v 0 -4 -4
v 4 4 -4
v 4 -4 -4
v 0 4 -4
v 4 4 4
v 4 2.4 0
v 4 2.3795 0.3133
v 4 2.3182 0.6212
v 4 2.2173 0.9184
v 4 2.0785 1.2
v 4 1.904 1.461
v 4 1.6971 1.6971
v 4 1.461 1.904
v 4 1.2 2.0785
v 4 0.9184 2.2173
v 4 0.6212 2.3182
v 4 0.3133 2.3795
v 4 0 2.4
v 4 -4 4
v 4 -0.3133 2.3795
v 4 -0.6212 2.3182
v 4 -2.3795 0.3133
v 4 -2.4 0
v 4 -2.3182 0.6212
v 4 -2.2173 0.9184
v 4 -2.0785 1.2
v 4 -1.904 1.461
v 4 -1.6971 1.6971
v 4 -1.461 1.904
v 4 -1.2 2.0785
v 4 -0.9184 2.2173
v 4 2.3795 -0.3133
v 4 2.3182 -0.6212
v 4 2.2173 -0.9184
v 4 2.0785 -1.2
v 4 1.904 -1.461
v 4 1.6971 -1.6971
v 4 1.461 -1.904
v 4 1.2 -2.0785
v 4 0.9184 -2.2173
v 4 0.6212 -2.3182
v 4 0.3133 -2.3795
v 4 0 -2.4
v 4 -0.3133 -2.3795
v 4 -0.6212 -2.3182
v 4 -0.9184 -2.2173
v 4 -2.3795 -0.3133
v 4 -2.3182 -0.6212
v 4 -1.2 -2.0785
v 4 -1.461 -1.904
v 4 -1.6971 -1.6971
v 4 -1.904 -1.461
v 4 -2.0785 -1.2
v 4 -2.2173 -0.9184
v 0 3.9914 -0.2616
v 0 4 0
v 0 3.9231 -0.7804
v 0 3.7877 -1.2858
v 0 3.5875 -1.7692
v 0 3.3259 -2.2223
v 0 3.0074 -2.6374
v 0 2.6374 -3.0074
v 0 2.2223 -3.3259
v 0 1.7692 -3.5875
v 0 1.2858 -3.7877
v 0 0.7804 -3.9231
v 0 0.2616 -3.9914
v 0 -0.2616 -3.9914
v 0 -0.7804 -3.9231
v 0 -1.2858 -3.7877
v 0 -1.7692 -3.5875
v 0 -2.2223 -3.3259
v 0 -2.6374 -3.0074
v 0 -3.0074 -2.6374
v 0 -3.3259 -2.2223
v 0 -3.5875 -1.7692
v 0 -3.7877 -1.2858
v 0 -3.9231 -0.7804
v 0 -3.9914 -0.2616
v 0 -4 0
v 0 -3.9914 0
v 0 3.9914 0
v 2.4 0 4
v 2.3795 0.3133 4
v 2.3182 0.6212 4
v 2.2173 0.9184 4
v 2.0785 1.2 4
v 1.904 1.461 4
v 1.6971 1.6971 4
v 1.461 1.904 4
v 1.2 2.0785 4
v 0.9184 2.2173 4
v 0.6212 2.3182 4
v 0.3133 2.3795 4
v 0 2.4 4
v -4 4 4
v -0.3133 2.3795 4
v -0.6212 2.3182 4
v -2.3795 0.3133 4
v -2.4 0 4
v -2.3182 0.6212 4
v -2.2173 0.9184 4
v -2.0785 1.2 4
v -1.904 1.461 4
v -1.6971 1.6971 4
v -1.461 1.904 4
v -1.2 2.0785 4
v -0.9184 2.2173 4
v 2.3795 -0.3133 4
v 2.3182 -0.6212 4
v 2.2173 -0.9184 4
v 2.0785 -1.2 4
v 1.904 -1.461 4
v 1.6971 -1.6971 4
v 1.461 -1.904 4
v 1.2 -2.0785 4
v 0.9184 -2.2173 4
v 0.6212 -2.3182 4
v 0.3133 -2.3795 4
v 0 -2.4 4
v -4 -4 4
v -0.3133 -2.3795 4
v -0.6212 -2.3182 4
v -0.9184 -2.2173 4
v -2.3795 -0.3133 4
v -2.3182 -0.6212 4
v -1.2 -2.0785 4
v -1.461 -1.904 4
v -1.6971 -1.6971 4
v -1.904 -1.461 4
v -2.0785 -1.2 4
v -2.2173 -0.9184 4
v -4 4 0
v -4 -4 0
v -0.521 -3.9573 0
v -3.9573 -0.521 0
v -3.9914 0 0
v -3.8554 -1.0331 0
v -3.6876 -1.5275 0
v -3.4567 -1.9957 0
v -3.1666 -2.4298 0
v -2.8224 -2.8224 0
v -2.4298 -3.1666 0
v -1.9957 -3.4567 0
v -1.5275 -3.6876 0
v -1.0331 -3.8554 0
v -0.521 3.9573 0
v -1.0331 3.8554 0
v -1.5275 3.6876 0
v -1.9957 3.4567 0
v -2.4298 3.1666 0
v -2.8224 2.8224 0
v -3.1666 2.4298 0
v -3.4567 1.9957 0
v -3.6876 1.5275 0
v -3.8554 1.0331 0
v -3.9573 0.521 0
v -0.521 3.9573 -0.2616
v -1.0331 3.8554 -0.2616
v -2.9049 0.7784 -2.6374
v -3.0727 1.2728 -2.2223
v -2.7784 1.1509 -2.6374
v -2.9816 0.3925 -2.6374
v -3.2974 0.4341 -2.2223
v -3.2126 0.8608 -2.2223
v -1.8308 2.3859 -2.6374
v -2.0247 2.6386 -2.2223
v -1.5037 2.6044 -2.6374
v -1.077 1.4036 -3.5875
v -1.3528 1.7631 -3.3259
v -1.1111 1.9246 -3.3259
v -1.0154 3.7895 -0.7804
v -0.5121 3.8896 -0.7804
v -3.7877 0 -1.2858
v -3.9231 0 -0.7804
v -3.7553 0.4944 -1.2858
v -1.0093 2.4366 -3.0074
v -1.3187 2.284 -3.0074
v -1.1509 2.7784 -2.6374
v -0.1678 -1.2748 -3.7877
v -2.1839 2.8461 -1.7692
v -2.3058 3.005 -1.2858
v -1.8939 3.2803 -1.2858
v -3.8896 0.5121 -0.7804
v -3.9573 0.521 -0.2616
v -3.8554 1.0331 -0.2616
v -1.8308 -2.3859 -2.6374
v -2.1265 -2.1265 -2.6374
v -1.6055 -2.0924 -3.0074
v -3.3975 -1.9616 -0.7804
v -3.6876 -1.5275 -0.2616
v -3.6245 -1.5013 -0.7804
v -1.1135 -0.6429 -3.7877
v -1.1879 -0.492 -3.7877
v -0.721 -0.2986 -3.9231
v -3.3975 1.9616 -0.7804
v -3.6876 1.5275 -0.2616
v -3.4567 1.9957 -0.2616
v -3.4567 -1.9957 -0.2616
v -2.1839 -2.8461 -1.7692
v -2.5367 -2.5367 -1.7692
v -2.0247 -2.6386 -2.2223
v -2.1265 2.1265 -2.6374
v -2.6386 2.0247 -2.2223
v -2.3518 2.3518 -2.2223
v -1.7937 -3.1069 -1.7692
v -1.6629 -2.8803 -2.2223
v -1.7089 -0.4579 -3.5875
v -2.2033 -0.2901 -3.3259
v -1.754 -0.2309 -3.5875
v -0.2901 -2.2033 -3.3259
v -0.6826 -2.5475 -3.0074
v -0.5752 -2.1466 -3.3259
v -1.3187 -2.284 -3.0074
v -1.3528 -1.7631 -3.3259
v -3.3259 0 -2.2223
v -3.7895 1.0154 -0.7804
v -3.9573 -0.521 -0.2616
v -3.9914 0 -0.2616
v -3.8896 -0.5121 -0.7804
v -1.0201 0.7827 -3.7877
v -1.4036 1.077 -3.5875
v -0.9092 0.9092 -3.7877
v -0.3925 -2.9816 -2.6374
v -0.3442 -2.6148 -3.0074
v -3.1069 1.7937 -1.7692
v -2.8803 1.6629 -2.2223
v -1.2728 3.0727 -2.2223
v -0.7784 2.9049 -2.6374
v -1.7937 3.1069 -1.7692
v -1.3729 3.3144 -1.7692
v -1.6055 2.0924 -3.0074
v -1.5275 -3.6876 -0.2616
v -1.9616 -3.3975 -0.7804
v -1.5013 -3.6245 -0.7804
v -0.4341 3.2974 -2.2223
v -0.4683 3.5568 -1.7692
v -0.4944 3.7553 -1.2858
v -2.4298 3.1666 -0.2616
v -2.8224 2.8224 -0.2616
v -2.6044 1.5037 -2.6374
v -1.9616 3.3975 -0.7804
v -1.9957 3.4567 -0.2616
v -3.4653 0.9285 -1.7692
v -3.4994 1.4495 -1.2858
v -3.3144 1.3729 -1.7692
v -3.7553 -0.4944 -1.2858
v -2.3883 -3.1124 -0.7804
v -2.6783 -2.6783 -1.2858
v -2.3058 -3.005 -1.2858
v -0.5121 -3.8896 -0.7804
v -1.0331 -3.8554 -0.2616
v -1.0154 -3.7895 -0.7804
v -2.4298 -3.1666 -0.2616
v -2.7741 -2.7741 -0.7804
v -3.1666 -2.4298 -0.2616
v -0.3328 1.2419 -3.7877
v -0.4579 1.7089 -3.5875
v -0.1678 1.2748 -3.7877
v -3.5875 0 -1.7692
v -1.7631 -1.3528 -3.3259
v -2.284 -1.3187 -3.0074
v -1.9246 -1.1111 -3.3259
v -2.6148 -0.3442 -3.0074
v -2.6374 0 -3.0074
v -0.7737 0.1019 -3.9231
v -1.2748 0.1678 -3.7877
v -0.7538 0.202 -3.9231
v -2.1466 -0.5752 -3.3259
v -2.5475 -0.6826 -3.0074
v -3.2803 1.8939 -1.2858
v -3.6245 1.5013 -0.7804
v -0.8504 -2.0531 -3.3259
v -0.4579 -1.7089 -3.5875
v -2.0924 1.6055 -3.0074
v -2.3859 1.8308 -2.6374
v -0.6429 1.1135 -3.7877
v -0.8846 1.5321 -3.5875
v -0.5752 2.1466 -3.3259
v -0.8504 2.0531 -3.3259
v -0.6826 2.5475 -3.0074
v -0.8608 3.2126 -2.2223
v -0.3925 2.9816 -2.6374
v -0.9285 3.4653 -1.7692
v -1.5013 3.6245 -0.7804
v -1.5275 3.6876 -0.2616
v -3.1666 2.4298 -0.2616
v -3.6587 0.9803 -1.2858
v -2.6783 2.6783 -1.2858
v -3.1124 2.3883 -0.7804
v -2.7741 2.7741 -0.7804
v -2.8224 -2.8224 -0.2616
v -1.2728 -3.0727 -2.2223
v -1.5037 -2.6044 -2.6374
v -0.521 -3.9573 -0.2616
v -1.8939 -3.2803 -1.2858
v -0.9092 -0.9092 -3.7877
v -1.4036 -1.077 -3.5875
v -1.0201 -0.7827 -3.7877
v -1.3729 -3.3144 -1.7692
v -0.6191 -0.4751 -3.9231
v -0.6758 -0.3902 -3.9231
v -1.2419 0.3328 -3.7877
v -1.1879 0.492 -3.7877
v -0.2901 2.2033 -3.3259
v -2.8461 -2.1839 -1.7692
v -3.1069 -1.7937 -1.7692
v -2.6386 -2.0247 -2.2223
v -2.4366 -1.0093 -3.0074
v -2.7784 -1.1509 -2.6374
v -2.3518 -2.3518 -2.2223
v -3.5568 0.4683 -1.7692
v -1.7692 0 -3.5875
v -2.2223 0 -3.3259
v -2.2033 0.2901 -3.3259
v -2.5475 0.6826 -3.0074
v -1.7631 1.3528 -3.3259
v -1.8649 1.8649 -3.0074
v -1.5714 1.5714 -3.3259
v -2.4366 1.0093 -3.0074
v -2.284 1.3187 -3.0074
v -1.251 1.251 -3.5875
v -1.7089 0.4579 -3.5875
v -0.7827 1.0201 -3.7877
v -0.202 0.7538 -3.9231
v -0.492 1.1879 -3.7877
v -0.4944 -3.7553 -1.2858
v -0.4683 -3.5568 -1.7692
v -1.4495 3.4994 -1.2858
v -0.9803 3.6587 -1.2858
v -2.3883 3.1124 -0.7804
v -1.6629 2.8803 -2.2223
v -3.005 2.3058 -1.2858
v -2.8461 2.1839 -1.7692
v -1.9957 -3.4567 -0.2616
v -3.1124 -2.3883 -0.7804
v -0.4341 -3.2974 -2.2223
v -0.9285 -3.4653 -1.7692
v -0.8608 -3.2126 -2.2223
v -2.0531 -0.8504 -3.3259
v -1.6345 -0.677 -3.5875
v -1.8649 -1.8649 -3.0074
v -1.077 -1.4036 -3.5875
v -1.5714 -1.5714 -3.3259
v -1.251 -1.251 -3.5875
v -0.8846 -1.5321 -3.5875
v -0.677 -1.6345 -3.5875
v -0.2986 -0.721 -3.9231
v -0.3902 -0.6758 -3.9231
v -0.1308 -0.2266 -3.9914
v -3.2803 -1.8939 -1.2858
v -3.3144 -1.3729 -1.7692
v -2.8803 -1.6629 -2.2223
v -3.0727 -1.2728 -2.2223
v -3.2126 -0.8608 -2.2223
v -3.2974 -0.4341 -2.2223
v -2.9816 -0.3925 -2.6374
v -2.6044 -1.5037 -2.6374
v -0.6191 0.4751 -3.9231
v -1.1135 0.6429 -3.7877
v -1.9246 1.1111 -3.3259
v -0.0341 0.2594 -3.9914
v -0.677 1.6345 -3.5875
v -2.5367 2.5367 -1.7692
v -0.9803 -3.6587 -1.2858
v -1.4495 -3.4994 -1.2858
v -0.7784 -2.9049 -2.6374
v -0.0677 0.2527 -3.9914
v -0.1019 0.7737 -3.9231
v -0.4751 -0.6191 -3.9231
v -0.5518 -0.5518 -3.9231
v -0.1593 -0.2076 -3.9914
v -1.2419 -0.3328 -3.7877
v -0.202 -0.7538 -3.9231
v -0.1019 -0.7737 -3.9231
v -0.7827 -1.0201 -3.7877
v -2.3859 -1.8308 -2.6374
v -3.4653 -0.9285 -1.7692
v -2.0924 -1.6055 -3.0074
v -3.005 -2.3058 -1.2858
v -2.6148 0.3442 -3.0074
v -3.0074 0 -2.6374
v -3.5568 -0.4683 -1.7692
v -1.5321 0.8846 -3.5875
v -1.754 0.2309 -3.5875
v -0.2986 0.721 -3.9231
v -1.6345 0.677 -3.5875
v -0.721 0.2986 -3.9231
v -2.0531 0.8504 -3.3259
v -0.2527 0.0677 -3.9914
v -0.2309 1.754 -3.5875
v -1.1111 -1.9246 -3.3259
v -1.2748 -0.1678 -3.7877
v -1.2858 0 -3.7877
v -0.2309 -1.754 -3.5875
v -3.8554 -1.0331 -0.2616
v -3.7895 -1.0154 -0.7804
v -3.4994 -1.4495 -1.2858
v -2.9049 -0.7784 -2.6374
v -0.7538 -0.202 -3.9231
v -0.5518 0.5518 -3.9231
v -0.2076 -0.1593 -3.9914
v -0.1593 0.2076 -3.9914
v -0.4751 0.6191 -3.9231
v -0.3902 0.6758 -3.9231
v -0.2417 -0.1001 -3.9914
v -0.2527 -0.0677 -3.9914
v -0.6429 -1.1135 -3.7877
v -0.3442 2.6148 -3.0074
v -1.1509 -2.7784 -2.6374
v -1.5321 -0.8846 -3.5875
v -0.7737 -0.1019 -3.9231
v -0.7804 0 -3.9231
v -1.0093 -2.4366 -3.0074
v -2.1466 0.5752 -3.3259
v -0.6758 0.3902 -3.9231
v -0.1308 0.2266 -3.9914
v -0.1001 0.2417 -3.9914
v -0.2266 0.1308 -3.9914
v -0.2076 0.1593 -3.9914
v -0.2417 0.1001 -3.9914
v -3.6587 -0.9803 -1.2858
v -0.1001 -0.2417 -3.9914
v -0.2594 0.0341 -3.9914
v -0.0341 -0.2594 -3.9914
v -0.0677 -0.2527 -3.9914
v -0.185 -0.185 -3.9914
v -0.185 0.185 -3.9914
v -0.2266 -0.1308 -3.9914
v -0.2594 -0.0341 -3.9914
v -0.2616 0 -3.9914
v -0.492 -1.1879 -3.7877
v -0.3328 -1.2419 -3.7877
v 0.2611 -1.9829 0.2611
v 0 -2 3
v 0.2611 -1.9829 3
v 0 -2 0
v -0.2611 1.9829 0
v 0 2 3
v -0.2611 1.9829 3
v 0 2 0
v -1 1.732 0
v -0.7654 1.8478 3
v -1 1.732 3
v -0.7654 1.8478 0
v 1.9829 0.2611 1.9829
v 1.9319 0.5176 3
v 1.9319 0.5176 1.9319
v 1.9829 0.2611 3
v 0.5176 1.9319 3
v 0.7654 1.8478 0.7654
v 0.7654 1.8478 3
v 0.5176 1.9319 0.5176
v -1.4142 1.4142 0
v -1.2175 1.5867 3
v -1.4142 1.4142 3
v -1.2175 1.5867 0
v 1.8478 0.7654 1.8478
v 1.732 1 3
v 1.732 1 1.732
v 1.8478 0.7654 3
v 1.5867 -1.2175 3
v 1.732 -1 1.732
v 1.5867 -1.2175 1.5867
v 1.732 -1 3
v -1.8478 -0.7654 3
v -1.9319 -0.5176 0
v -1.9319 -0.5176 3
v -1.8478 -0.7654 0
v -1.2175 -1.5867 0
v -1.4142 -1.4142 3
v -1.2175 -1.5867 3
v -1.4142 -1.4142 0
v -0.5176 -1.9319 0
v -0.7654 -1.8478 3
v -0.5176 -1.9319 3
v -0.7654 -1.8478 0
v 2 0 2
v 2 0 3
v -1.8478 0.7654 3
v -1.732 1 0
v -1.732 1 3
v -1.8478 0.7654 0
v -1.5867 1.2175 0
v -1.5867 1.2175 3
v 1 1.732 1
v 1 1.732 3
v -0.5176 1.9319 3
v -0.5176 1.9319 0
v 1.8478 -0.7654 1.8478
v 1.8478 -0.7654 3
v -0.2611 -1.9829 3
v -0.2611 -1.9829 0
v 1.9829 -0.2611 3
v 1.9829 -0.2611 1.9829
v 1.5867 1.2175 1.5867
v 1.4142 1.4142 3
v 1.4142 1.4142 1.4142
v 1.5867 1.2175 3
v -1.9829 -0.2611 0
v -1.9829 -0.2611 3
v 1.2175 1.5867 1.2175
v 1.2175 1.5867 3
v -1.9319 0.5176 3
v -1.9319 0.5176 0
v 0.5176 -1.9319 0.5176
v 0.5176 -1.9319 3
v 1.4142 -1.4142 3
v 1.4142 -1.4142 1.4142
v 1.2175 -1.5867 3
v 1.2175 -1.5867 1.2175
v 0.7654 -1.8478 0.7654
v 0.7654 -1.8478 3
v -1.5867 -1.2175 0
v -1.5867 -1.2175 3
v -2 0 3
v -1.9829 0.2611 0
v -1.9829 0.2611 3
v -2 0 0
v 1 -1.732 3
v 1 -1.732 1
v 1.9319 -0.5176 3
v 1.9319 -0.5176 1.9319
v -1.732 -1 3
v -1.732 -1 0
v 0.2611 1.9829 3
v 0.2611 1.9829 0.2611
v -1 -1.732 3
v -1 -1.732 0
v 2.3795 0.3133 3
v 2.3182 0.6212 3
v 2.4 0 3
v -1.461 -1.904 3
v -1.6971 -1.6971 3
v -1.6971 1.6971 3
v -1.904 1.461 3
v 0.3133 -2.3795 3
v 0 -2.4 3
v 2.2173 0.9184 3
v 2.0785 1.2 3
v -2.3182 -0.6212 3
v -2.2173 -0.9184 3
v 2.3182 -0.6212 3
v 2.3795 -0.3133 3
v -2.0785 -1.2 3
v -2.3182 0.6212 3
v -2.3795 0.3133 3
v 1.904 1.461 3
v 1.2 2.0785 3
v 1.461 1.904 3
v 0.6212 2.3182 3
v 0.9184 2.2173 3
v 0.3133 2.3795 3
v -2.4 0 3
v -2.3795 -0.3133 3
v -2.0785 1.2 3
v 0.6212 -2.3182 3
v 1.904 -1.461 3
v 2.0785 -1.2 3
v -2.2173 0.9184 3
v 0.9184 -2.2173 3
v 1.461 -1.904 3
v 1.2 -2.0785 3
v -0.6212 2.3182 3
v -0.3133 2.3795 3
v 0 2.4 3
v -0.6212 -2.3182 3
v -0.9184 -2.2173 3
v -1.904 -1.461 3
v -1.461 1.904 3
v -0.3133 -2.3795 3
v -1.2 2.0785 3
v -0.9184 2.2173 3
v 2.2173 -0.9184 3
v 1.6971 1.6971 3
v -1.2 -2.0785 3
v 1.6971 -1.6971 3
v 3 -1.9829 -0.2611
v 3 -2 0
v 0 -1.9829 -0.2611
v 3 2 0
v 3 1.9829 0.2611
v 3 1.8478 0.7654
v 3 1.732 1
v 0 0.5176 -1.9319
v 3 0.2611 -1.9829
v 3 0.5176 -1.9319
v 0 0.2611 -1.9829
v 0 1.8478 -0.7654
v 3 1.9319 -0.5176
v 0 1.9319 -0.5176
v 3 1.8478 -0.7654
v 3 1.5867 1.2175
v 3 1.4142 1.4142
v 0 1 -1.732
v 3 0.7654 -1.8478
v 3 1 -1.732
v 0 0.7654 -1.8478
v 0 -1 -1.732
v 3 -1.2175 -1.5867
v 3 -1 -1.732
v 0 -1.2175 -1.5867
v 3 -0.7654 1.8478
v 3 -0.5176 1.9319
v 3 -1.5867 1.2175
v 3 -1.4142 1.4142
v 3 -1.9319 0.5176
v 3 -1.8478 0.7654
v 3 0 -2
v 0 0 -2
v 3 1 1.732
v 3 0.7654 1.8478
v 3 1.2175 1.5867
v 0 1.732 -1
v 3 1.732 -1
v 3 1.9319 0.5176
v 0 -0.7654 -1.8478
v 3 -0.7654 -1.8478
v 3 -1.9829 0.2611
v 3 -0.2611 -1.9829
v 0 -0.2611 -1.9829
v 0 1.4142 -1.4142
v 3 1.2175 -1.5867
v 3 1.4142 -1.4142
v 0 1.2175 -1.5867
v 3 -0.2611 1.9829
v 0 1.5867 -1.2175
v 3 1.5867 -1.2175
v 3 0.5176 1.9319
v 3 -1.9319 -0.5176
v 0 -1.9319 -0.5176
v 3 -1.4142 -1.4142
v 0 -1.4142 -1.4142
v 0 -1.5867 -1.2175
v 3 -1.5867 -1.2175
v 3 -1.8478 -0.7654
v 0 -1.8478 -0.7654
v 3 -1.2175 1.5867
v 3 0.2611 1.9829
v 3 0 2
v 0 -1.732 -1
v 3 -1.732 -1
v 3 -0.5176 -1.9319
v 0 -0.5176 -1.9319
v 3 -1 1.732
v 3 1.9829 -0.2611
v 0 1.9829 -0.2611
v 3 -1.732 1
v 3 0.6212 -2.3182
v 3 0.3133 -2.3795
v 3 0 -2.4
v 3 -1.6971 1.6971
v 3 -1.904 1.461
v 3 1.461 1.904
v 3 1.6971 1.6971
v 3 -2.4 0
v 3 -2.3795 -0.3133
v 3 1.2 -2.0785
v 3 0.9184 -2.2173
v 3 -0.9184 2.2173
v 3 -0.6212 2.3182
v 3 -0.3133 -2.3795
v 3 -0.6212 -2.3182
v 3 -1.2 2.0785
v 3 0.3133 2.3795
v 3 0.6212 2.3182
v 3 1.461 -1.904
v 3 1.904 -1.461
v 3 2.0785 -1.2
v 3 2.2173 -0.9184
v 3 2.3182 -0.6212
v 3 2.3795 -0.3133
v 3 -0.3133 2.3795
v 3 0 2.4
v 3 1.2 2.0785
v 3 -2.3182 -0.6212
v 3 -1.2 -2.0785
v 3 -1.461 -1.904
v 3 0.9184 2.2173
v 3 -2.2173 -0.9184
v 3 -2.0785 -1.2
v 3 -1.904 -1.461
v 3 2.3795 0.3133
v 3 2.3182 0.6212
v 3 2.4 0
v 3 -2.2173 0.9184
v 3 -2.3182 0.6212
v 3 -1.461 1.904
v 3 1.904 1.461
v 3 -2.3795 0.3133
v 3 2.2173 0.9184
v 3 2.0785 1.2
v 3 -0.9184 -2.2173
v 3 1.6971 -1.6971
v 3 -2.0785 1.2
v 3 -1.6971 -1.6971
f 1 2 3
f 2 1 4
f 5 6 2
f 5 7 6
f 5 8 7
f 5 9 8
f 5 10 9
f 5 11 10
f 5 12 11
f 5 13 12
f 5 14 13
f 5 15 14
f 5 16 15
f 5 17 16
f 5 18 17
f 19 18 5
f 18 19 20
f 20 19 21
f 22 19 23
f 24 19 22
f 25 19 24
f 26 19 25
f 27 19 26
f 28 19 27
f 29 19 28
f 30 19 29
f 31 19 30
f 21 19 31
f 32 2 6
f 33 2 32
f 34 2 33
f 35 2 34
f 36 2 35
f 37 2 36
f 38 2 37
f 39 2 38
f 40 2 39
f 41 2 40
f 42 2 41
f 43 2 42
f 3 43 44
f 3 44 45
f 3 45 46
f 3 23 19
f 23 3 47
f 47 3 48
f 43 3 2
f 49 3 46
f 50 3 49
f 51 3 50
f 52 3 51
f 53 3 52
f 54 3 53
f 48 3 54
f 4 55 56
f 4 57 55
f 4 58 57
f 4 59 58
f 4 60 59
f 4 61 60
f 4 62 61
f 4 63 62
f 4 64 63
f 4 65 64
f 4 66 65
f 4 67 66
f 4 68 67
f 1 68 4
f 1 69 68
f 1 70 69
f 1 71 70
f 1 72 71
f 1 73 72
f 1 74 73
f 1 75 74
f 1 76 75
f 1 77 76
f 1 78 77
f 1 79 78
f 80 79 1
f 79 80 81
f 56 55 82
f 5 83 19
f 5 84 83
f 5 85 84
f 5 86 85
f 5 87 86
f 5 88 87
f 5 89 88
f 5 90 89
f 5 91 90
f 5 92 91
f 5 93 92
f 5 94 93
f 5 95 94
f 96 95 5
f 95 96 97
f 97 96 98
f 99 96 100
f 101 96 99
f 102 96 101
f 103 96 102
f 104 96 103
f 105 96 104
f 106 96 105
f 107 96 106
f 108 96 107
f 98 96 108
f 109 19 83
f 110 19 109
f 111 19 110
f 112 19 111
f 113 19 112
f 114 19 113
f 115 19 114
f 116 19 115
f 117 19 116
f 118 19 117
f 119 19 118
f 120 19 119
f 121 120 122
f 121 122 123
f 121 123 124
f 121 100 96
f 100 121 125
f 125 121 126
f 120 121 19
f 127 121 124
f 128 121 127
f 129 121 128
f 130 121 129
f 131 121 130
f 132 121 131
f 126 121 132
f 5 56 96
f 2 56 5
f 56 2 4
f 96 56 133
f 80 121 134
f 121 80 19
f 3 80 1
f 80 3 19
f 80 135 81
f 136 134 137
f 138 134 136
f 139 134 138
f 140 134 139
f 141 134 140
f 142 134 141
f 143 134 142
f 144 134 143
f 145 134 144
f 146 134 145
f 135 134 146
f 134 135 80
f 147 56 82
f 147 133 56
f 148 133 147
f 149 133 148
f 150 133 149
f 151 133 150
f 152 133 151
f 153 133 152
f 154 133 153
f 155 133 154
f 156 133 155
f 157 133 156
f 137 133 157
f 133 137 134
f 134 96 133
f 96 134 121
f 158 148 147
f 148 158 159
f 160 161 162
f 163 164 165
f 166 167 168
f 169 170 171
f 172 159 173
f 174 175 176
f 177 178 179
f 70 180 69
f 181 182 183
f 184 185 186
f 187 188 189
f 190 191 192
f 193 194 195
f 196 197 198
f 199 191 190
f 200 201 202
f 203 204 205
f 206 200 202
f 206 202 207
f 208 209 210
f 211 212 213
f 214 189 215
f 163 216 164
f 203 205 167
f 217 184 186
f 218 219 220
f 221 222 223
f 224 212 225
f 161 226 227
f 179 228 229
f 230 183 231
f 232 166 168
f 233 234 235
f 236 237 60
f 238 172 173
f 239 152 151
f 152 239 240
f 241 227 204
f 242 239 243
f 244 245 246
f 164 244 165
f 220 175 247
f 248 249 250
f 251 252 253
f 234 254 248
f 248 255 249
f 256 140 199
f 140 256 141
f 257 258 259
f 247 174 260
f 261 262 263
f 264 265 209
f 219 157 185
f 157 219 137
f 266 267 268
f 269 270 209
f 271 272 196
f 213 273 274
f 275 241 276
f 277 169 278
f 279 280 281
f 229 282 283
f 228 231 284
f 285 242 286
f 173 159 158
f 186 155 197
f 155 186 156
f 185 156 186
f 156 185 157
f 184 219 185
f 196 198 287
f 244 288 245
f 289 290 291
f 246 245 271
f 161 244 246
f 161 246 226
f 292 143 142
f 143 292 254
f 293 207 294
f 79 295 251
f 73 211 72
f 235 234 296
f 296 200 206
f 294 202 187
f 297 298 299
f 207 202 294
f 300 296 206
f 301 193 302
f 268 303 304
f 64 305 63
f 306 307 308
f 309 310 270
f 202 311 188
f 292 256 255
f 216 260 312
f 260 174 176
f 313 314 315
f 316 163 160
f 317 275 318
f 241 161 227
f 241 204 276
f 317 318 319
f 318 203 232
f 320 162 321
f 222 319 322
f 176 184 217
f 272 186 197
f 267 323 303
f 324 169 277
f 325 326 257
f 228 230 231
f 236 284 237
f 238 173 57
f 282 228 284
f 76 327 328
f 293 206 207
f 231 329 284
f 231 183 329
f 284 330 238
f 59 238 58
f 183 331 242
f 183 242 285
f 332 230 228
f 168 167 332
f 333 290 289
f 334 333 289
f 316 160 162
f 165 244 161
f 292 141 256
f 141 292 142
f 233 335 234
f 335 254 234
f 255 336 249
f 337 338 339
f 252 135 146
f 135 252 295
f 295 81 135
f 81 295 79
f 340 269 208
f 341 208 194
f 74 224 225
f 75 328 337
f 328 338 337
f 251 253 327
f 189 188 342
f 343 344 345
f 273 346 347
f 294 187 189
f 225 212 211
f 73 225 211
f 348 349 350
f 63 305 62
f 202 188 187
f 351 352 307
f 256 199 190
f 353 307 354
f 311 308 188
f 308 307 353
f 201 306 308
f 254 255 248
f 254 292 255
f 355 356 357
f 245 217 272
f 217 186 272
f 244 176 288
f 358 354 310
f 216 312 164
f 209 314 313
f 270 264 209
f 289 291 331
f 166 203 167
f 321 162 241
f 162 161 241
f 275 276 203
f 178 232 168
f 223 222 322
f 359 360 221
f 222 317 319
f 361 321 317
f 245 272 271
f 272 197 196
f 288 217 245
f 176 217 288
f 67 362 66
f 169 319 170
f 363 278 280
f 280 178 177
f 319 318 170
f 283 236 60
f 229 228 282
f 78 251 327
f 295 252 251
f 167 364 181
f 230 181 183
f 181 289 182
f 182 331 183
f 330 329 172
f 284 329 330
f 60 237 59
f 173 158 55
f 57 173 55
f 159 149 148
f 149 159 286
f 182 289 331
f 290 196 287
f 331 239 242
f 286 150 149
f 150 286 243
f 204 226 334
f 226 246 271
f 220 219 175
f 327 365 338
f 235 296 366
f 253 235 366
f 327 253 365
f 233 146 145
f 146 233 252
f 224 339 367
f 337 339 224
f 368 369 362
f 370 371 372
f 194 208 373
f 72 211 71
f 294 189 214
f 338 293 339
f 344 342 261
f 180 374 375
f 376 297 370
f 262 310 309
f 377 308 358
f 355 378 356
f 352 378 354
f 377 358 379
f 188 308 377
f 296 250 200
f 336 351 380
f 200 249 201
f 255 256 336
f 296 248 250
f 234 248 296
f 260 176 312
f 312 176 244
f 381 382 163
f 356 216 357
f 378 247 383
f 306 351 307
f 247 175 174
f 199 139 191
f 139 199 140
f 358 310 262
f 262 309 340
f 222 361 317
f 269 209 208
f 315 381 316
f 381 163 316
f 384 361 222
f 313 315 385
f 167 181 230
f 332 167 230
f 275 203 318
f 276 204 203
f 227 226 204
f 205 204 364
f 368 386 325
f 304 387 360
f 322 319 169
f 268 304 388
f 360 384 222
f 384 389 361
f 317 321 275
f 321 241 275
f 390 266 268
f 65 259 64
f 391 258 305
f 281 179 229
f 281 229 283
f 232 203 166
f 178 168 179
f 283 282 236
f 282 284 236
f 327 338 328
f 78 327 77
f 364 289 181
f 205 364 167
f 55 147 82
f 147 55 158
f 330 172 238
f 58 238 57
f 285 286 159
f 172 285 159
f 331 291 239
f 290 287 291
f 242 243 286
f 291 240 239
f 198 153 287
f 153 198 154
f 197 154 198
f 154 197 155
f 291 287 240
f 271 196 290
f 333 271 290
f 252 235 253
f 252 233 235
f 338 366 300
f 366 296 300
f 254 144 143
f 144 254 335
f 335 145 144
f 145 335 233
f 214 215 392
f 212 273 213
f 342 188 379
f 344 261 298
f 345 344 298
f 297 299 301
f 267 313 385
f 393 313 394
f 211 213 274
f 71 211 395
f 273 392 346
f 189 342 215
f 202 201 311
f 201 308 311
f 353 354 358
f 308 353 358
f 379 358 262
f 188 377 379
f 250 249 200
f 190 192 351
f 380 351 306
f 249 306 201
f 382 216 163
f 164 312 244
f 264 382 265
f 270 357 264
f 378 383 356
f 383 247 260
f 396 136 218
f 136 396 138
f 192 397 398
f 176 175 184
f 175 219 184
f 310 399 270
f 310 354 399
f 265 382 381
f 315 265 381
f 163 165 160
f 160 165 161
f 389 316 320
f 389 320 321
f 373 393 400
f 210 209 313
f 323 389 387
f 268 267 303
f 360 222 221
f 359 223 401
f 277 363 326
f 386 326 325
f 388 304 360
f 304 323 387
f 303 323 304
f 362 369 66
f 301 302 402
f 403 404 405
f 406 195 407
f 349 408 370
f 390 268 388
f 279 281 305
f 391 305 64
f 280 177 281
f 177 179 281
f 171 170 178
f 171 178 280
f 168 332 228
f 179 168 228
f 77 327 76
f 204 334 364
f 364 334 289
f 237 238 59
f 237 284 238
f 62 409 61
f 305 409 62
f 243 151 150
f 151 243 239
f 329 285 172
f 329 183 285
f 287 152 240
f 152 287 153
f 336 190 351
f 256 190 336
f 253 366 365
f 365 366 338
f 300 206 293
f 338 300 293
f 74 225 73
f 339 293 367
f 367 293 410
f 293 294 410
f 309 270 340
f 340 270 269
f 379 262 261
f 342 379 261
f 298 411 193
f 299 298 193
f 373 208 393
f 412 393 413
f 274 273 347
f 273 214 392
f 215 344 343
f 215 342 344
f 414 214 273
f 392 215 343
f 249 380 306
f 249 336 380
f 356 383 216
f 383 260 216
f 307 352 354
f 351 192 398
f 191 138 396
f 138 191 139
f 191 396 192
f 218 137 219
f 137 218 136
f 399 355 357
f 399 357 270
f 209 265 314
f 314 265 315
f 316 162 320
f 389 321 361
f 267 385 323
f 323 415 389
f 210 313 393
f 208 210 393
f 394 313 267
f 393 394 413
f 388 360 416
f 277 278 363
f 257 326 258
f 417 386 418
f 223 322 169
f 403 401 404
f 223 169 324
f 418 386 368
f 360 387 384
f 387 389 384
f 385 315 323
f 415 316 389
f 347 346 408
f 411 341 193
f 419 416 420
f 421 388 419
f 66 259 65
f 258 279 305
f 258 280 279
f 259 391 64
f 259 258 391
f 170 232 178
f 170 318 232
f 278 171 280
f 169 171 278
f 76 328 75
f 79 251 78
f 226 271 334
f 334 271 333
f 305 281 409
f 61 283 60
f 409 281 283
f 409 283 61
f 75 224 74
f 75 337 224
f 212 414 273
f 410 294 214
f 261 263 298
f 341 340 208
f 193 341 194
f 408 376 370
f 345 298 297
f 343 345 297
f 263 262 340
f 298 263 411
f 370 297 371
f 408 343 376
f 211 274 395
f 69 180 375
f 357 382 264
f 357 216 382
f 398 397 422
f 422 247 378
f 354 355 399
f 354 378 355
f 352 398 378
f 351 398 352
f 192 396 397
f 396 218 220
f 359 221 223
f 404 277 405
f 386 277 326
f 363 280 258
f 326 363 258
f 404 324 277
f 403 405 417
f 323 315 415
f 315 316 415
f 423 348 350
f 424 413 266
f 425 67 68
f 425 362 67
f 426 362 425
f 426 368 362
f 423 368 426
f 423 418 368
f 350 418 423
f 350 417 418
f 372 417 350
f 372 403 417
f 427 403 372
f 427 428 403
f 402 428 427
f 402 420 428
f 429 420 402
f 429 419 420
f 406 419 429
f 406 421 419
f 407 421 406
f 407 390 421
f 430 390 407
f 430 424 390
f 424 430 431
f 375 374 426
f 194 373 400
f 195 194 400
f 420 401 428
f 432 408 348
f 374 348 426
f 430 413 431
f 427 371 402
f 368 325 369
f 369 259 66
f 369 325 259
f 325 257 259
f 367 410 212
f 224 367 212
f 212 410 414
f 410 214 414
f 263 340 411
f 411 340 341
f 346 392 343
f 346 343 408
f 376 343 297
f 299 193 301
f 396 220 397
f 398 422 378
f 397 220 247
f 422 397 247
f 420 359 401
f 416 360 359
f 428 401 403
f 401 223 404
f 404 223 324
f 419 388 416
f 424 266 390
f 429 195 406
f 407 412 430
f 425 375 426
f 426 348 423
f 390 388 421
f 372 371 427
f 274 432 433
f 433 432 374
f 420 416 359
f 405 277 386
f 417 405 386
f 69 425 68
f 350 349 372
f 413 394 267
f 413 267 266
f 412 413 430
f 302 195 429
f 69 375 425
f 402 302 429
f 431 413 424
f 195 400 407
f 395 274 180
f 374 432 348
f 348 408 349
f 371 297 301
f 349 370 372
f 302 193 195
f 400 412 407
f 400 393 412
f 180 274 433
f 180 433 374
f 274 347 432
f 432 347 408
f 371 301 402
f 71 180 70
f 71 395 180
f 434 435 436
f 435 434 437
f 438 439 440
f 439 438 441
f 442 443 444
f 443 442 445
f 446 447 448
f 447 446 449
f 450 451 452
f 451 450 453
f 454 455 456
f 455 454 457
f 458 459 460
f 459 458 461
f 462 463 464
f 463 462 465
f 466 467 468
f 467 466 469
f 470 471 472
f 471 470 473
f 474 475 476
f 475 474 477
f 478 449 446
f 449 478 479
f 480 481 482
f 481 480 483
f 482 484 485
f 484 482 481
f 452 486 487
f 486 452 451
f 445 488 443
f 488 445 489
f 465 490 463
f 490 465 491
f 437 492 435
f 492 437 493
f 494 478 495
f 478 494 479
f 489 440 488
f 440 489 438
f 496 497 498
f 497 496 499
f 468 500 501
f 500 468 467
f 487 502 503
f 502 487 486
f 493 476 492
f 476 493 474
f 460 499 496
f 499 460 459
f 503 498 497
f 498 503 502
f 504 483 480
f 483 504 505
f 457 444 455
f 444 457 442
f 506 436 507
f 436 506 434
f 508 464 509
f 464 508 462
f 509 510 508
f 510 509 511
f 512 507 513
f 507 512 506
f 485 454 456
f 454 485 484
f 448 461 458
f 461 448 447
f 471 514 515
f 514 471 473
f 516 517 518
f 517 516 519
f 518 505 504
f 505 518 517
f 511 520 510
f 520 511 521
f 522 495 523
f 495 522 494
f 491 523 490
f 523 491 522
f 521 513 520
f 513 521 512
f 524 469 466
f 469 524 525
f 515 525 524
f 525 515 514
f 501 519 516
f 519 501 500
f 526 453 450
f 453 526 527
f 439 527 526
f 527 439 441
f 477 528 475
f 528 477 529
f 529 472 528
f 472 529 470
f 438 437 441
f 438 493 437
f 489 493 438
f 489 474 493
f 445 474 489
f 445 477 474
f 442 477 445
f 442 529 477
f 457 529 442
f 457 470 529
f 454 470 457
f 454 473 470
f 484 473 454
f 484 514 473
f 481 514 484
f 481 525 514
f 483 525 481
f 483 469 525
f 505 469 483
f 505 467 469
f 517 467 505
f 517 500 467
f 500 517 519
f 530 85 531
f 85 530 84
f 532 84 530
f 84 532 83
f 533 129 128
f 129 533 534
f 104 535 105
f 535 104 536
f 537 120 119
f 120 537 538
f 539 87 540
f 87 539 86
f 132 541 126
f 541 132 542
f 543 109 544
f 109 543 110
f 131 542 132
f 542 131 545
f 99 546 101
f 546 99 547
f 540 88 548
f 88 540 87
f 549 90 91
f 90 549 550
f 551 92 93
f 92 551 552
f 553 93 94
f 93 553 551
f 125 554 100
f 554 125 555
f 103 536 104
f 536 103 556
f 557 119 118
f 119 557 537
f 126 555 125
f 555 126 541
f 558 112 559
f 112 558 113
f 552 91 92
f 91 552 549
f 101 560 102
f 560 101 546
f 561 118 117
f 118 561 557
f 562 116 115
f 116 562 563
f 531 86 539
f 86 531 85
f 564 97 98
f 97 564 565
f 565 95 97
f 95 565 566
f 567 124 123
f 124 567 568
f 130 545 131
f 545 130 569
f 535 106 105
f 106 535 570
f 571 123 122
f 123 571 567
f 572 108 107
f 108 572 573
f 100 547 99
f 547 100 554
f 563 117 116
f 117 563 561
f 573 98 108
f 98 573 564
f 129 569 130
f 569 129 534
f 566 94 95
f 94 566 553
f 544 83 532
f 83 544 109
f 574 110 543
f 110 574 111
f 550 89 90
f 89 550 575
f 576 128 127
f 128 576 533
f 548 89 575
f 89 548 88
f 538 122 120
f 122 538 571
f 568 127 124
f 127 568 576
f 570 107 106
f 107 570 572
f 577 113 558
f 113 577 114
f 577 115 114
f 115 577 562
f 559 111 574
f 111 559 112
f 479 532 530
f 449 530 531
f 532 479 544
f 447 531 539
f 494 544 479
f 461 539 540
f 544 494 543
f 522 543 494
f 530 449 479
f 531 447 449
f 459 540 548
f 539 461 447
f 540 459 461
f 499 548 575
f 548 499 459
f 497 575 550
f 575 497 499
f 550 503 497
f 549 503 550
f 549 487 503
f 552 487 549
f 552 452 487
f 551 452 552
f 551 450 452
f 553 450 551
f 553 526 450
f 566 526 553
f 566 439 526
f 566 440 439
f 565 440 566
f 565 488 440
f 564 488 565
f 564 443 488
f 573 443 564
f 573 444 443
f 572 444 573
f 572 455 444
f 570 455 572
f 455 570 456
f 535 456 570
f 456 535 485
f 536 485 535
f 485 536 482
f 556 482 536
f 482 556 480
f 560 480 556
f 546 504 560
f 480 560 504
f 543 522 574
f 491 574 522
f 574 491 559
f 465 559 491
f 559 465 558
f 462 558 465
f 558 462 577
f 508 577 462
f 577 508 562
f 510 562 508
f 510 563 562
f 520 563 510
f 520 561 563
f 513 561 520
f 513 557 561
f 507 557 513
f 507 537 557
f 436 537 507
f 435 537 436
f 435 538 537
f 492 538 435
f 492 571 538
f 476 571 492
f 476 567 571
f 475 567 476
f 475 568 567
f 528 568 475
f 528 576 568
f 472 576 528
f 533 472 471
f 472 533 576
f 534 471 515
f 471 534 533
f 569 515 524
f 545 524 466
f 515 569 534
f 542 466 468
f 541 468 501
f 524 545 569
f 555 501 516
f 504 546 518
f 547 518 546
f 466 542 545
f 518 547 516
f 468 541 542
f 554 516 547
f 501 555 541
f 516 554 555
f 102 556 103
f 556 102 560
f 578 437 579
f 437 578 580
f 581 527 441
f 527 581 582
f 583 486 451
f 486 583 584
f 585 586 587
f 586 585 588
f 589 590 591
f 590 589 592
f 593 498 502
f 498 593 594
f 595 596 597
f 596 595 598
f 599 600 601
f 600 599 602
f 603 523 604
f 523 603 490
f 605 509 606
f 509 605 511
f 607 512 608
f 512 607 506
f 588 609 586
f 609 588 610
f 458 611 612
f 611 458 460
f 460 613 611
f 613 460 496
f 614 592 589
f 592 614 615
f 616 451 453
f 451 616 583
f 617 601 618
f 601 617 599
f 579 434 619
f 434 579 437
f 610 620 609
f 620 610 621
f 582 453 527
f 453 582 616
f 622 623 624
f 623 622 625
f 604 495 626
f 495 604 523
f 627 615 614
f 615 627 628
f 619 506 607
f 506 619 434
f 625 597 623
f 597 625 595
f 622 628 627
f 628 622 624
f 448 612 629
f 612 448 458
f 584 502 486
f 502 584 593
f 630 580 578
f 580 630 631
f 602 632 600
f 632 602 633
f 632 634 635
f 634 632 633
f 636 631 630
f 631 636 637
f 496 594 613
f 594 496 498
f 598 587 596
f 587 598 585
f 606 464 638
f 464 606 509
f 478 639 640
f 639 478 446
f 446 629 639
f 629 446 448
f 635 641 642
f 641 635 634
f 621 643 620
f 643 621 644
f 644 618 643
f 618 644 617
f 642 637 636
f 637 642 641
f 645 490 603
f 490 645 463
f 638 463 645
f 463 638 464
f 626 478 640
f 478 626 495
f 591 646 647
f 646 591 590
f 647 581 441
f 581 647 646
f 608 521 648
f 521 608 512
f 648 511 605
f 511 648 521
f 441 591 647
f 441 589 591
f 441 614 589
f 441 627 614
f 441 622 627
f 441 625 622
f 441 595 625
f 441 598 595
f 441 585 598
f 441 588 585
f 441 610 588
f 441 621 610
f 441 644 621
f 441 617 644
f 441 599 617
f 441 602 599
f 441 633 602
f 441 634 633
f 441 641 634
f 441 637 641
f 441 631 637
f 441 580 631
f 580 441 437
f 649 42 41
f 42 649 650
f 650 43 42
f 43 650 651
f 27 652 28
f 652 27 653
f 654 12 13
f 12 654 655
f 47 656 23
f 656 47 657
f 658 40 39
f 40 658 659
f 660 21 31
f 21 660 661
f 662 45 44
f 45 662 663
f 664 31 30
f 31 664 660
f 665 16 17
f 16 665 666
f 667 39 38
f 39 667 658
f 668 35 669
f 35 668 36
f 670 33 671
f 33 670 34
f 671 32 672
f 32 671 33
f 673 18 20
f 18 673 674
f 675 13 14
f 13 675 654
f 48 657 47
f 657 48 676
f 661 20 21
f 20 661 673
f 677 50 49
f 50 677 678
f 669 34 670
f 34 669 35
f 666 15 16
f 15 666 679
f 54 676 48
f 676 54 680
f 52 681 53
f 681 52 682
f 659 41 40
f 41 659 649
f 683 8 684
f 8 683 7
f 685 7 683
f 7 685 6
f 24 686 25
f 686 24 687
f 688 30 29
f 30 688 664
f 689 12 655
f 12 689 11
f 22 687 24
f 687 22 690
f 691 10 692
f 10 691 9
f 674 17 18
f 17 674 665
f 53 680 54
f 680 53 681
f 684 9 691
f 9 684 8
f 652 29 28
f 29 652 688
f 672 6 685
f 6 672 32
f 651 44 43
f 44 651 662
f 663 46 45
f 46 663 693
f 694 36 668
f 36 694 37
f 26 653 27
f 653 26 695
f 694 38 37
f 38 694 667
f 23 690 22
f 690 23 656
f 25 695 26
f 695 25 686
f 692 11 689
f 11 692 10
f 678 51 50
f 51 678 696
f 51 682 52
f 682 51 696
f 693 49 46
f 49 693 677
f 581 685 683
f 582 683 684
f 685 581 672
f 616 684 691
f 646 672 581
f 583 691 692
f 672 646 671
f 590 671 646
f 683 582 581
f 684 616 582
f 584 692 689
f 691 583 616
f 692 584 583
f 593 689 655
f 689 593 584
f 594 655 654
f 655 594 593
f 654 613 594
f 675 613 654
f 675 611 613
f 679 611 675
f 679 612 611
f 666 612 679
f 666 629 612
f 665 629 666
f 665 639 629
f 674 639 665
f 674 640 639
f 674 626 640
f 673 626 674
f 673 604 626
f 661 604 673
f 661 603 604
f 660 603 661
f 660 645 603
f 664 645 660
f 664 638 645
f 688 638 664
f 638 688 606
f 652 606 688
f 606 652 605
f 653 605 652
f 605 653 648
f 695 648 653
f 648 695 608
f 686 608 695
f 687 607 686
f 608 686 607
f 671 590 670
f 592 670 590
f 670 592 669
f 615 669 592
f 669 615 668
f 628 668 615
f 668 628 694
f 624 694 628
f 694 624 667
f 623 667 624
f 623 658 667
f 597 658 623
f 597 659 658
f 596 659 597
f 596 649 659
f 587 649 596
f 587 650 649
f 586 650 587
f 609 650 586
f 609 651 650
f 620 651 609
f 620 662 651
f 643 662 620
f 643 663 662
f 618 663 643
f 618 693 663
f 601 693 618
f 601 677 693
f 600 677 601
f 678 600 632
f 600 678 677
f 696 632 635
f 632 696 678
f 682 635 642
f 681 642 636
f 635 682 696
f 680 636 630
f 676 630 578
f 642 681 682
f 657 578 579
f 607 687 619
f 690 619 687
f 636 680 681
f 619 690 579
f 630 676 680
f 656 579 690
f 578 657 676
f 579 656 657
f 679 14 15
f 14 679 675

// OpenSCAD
// file: params.scad
// ============================================================
// PARAMS — primitivos e derivados do sistema
// ============================================================
// FONTE ÚNICA dos primitivos no OpenSCAD. Toda peça faz
// `include <params.scad>` em vez de redeclarar.
//
// Antes disto os 7 primitivos estavam copiados em brick, pin,
// node e dock — 28 declarações para 7 valores. Foi o que deixou
// `pin_len` ficar 1.6 na spec e 2.0 em quatro implementações sem
// ninguém notar. O `make spec-check` DETECTA essa divergência;
// este arquivo IMPEDE que ela exista.
//
// Reatribuir daqui funciona por include aninhado — testado:
// variante -> peça -> params propaga e os derivados recomputam.
//
// ⚠️ Variável NOVA da variante tem de ser declarada ANTES do
// `include`. Depois dele o OpenSCAD avalia a reatribuição no
// ponto da declaração original, onde a variável nova ainda não
// existe: sai `WARNING: Ignoring unknown variable` e o valor
// errado, em silêncio.
//
// contrato: spec/parts/brick/contracts.toml
// premissas: spec/constitution.md
// ============================================================

/* [Primitivos do sistema] */

// Diâmetro do furo passante — a interface mecânica
hole_d = 4.0; // [1:0.1:30]

// Parede interna mínima (4 perímetros de 0.4)
wall = 1.6; // [0.4:0.1:6]

// Degrau RADIAL entre furo e rebaixo (1 bico de 0.4)
collar_w = 0.4; // [0:0.1:2]

// Profundidade AXIAL do rebaixo
collar_depth = 1.0; // [0.25:0.25:4]

// Folga de press-fit, subtraída sempre do MACHO
tolerance = 0.2; // [0:0.05:0.6]

// Folga real mínima entre dois machos que se aproximam
gap = 0.5; // [0:0.1:2]

// Protrusão do macho. DECLARADO, não derivado: o limite é a
// colisão com o macho PERPENDICULAR, e essa aproximação é
// DIAGONAL, não axial. Ver constitution.md § 5.
pin_len = 2.0; // [0.5:0.05:6]

/* [Qualidade] */
$fn = 48;

// ============================================================
// DERIVADOS — nada aqui é escolhido à mão
// ============================================================
grid     = hole_d + 2 * (wall + collar_w);
recess_d = hole_d + 2 * collar_w;
pin_d    = hole_d - tolerance;
collar_d = recess_d - tolerance;
inset    = grid / 2;

// Teto do macho: duas hastes perpendiculares se tocam aqui.
pin_len_max = grid / 2 - pin_d / 2;

// Furo de BORDA exige seção — é o que fixa o grid.
edge_bore_min = hole_d + 2 * wall;

// Chanfro de entrada do macho. Constante, não parâmetro: existe
// para o macho achar o furo, e ninguém decide isso peça a peça.
lead_in = 0.4;

assert(pin_len <= pin_len_max,
       str("macho longo demais: ", pin_len, " > ", pin_len_max,
           " — encosta no macho perpendicular da célula receptora"));
assert(pin_len > collar_depth,
       "colar mais fundo que a protrusão: a haste não sai do colar");
assert(hole_d * sqrt(2) > recess_d,
       "rebaixo morde a barra da aresta: exige hole_d·√2 > recess_d");

// ============================================================
// O CONECTOR — desenhado UMA vez, usado por toda peça
// ============================================================
// Referencial: origem no centro da face, +Z para FORA da peça.

// Vocabulário dos encaixes. A IR de montagem diz stud / socket / flat
// (spec/assembly.md § Nomes); os parâmetros das peças sempre disseram
// pin / recess / plain. As duas formas valem em qualquer -D.
function fb_kind(k) = k == "stud" ? "pin" : k == "socket" ? "recess" : k == "flat" ? "plain" : k;

// MACHO: colar (quem retém) + haste + chanfro de entrada.
// `sink` afunda a base no corpo, só para a união não ficar coplanar.
module fb_male(sink = 0) {
    translate([0, 0, -sink]) cylinder(d = collar_d, h = collar_depth + sink);
    cylinder(d = pin_d, h = pin_len - lead_in);
    translate([0, 0, pin_len - lead_in])
        cylinder(r1 = pin_d / 2, r2 = pin_d / 2 - lead_in, h = lead_in);
}

// FÊMEA (para subtrair): rebaixo que aloja o colar e, com `bore > 0`,
// o furo de profundidade `bore` atrás dele.
module fb_female(bore = 0, recess = true) {
    e = 0.02;
    if (recess) translate([0, 0, -collar_depth]) cylinder(d = recess_d, h = collar_depth + e);
    if (bore > 0) translate([0, 0, -bore]) cylinder(d = hole_d, h = bore + e);
}
// main file
// ============================================================
// NODE — Design System 3D Modular
// ============================================================
// A única peça que sai do ortogonal. Une N portas em ângulos
// arbitrários.
//
// NÃO absorve as uniões a 90°, 180° e 3-vias ortogonais: essas
// já são BRICK com faces "pin", porque as portas de uma união
// ortogonal caem exatamente nos centros de face da célula.
//
//          ╲   │
//           ╲  │      cubo central + um braço por porta,
//            ╲ │      com concordância (fillet) entre eles
//         ────●────
//
// DECLARADO POR DIREÇÕES, NÃO POR ÂNGULO
//
// Com três ou mais portas não existe "o ângulo" — existem
// vários. E escrever ângulo à mão é a origem de erro de
// orientação mais comum: derivar do vetor elimina a classe.
//
// O FILLET devolve o que a curva por varredura dava: quina
// externa arredondada e canal sem dobra seca. Com dois braços
// a 90° e fillet, o NODE reproduz o antigo ELBOW.
//
// spec: spec/parts/node.md
// ============================================================

// Primitivos e derivados: fonte única, não redeclarar aqui.
include <params.scad>

/* [Portas] */
// Direções, uma por porta. Duas fazem curva; três ou mais, nó.
// O ângulo entre elas é CONSEQUÊNCIA.
dirs = [[1,0,0], [0,0,1]];

// Acabamento por porta: recess | pin | plain
ports = ["recess", "recess"];

/* [Canto de laje] */
// Ângulo INTERNO entre duas lajes. 0 = usa `dirs` cru.
//
// Laje fina não tem furo de BORDA — ele exige hole_d + 2·wall =
// 7.2mm e a laje tem 4 ou 2. Então virar uma quina só é possível
// por DENTRO, encaixando na FACE de cada laje. Não é contorno:
// é a única interface que uma laje fina tem.
//
// A porta cai no primeiro furo, a grid/2 da quina. Daí sai o
// comprimento do braço:
//
//     arm_len = (grid/2) · tan(θ/2)
//
// θ=90° dá exatamente grid/2 — por isso o BRICK com preset
// `corner_90` já resolve a quina reta, e não por coincidência.
//
// A aresta do braço encosta exatamente na quina em QUALQUER
// ângulo, porque a seção é `grid` e a porta está a `grid/2`.
corner_angle = 0; // [0:1:170]

// Em qual furo de cada laje a porta encaixa. -1 = automático:
// escolhe o MENOR índice que fecha a geometria.
//
// É o parâmetro que destrava o ângulo agudo. A porta fica a
// d = grid/2 + k·grid do vértice, e o braço vale d·tan(θ/2) —
// então afastar a porta ALONGA o braço e abre espaço para o
// corpo. Com k=0 e θ<90° o braço fica curto demais e o hub
// invadiria a laje; com k=1 ou 2 ele cabe.
hole_index = -1; // [-1:1:4]

/* [Forma] */
// Raio de concordância entre os braços
fillet = 2; // [0:0.25:8]

// Comprimento do braço, do centro à porta. 0 = derivado (grid/2)
arm_len = 0; // [0:0.5:40]

// ============================================================
// DERIVADOS
// ============================================================
// Protrusão do macho. DECLARADO, não derivado.
//
// A versão anterior fazia `wall + collar_w + tolerance/2 - gap`,
// que cobrava √2 a mais do que a geometria pede: o limite é a
// colisão com o macho PERPENDICULAR da célula receptora, e essa
// aproximação é DIAGONAL, não axial. Subtrair `gap` do eixo
// gastava 0.5mm de engate para comprar 0.71mm de folga.
//
// O teto verdadeiro está no assert abaixo. 2.0 foi verificado
// por dilatação (minkowski): folga real ≥ 0.5mm.

// Teto geométrico: a haste tem raio pin_d/2 e parte da face, a
// grid/2 do centro. Duas hastes perpendiculares se tocam quando
// pin_len alcança essa diferença.

sec = grid;                                   // seção do braço

// --- Modo canto ---------------------------------------------
// Bissetor em +X, aresta da quina ao longo de Y. Os braços
// apontam do hub PARA as lajes, ou seja ao longo das normais
// internas invertidas.
is_corner   = corner_angle > 0;
ch          = corner_angle / 2;
// Raio do hub — é ele que precisa caber entre as duas lajes
hub_r = fillet > 0 ? (sec / 2 + 2 * fillet) / 2 : sec / 2 * sqrt(2) / 2;

// Distância da porta ao vértice para um dado índice de furo
function port_dist(k) = grid / 2 + k * grid;
function arm_for(k, hh) = port_dist(k) * tan(hh);

// Folga entre o braço e a LAJE OPOSTA. Acima de 90° o mínimo
// está na ponta do braço; abaixo, na base.
function corner_slack(k, th) =
    th >= 90 ? sin(th) * (port_dist(k) - grid/2)
             : arm_for(k, th/2) - (grid/2) * sin(th);

// Menor índice que fecha: braço não invade a laje oposta E o hub
// cabe entre as duas.
function auto_k(th, i = 0) =
    i > 6 ? 6
  : (corner_slack(i, th) >= -1e-6 && arm_for(i, th/2) >= hub_r - 1e-6) ? i
  : auto_k(th, i + 1);

corner_k   = !is_corner ? 0
           : (hole_index >= 0 ? hole_index : auto_k(corner_angle));
corner_arm = arm_for(corner_k, ch);
corner_dirs = [ [-sin(ch),  cos(ch), 0],
                [-sin(ch), -cos(ch), 0] ];

// Ângulo ENTRE OS BRAÇOS é o suplemento do ângulo entre lajes:
// θ=90 → 90, θ=120 → 60.

eff_dirs = is_corner ? corner_dirs : dirs;
eff_alen = is_corner ? corner_arm : (arm_len > 0 ? arm_len : grid / 2);

alen = eff_alen;
n    = len(eff_dirs);

function unit(v) = v / norm(v);
function ang_between(a, b) = acos(max(-1, min(1, unit(a) * unit(b))));

// Menor ângulo entre braços — o fillet precisa caber nele
min_ang = n < 2 ? 180 :
    min([ for (i = [0 : n-2], j = [i+1 : n-1]) ang_between(eff_dirs[i], eff_dirs[j]) ]);

// Uma porta é ortogonal se aponta ao longo de um eixo do grid
function is_ortho(v) = let (u = unit(v))
    (abs(abs(u[0]) - 1) < 1e-6) || (abs(abs(u[1]) - 1) < 1e-6) || (abs(abs(u[2]) - 1) < 1e-6);
all_ortho = [ for (d = eff_dirs) if (!is_ortho(d)) 1 ] == [];

// ============================================================
// VALIDAÇÃO
// ============================================================
assert(n >= 2, "NODE precisa de pelo menos duas portas");
assert(len(ports) == n, "uma entrada de `ports` por direção em `dirs`");
assert(min_ang > 1, "duas portas apontam na mesma direção");
// Quem invade a laje num canto agudo é o HUB, e o raio dele
// depende do `fillet` — daí o limite ser função dele, não o
// `pin_len + wall` fixo que estava aqui antes. Com fillet menor
// o hub encolhe e ângulos mais fechados passam a caber.
assert(alen >= pin_len + wall, "braço curto demais para a porta e a parede");
assert(!is_corner || alen >= hub_r,
       str("canto agudo demais: θ=", corner_angle, "° dá braço ", alen,
           "mm e o hub tem raio ", hub_r,
           " — ele invadiria a laje. Reduza `fillet` ou abra o ângulo."));
assert(!is_corner || len(ports) == 2, "modo canto usa exatamente duas portas");
assert(fillet * 2 <= sec, "fillet maior que a seção do braço");

// ============================================================
// MÓDULOS
// ============================================================

// Orienta os filhos com +Z ao longo de `d`. A rotação sai do
// VETOR, nunca escrita à mão.
// O eixo tem de sair de +Z × u, NÃO de [u.y, -u.x, 0].
//
// A versão anterior dava o MESMO eixo para +X e -X (nos dois
// casos [0,1,0]), e como acos() só devolve 0..180° o sinal se
// perdia: `along([-1,0,0])` mandava o braço para +X. Errava
// toda direção com componente negativa, em silêncio.
module along(d) {
    u  = unit(d);
    ax = cross([0, 0, 1], u);
    a  = acos(max(-1, min(1, u[2])));
    if (norm(ax) < 1e-9)                       // u paralelo a Z
        if (u[2] > 0) children();
        else rotate([180, 0, 0]) children();
    else rotate(a = a, v = ax) children();
}

// Seção QUADRADA de lado `sec`, alinhada aos eixos.
//
// Era `cylinder(d = sec, $fn = 4)`, que inscreve o quadrado no
// diâmetro: o lado saía sec/√2 = 5.66, não 8, e ainda girado 45°
// (losango). Com o lado valendo `sec` de verdade, a aresta do
// braço encosta exatamente na quina — a porta fica a grid/2 dela
// e a meia-seção vale grid/2.
module arm(a) {
    translate([0, 0, a / 2]) cube([sec, sec, a], center = true);
}

// Argumentos com default no global: `use <node.scad>` importa só
// o módulo, então SEM eles um assembly ficaria preso ao NODE
// default e não conseguiria instanciar dois ângulos diferentes.
module node(dirs = eff_dirs, ports = ports, arm_len = eff_alen) {
    pk = [ for (k = ports) fb_kind(k) ];   // aceita também stud / socket / flat
    nn = len(dirs);
    a  = arm_len;
    difference() {
        union() {
            // CANTO: o corpo é o FECHO CONVEXO dos braços, não um
            // hub separado. A esfera sobrava para fora e a peça
            // lia como dois blocos colados; o hull dá um sólido
            // único e alinhado — um elbow de verdade.
            //
            // E é seguro por construção: os braços terminam NA
            // face de cada laje, todos do lado interno; o fecho
            // convexo de conjuntos de um mesmo lado de um plano
            // não atravessa esse plano.
            if (is_corner) hull() for (i = [0 : nn-1]) along(dirs[i]) arm(a);
            else {
                // Hub — a esfera dá a concordância entre os braços
                if (fillet > 0) sphere(d = sec / 2 + 2 * fillet);
                else cube(sec, center = true);
                for (i = [0 : nn-1]) along(dirs[i]) arm(a);
            }
            for (i = [0 : nn-1]) if (pk[i] == "pin")
                along(dirs[i]) translate([0, 0, a]) fb_male();
        }
        for (i = [0 : nn-1]) if (pk[i] == "recess")
            along(dirs[i]) translate([0, 0, a]) fb_female(bore = a);
    }
}

// Comprimento do braço para um canto de θ graus. Exposto para o
// assembly calcular sem repetir a fórmula.
function corner_arm_len(theta) = (grid / 2) * tan(theta / 2);

// ============================================================
// RENDER
// ============================================================
part_color = [0.10, 0.70, 0.45];
color(part_color) node();

// ============================================================
// INFO
// ============================================================
echo("=== NODE ===");
echo(str("Portas      ", n, " | direções ", dirs));
echo(str("Acabamento  ", ports));
echo(str("Braço       ", alen, "mm | seção ", sec, " | fillet ", fillet));
echo(str("Menor ângulo entre braços: ", min_ang, "°"));
echo("---");
echo(str("Todas as portas ortogonais? ", all_ortho ? "SIM" : "não"));
if (all_ortho)
    echo("AVISO: união totalmente ortogonal — use BRICK com faces 'pin', é mais simples");
echo(str("Volta ao grid?  ", all_ortho ? "sim"
    : "só em ângulo de terno pitagórico (3-4-5 = 53.13°); a 45° a diagonal vale grid·√2"));

// --- Modo canto ---------------------------------------------
if (is_corner) {
    echo(str("CANTO       θ interno ", corner_angle, "° | furo #", corner_k,
             " (a ", port_dist(corner_k), "mm do vértice) | braço ",
             corner_arm, "mm | entre braços ", min_ang, "°"));
    echo(str("            folga braço↔laje oposta: ",
             corner_slack(corner_k, corner_angle), "mm",
             hole_index >= 0 ? "  (furo forçado)" : "  (furo automático)"));
    // O canto encaixa na FACE da laje, que é fêmea — logo a porta
    // tem de ser macho. Aviso, não erro: pode haver uso legítimo.
    if (fb_kind(ports[0]) != "pin" || fb_kind(ports[1]) != "pin")
        echo(str("AVISO canto: portas ", ports, " — a face da laje é",
                 " fêmea, o canto precisa de ports=[\"pin\",\"pin\"]"));
    // Acima de uma célula as lajes já estão quase coplanares e
    // uma emenda deitada sobre as duas faces é mais curta e mais
    // rígida que um braço longo em balanço.
    if (corner_arm > grid)
        echo(str("AVISO canto: braço ", corner_arm, "mm > 1 célula (", grid,
                 ") — considere LAJE DE EMENDA sobre as duas faces"));
}
